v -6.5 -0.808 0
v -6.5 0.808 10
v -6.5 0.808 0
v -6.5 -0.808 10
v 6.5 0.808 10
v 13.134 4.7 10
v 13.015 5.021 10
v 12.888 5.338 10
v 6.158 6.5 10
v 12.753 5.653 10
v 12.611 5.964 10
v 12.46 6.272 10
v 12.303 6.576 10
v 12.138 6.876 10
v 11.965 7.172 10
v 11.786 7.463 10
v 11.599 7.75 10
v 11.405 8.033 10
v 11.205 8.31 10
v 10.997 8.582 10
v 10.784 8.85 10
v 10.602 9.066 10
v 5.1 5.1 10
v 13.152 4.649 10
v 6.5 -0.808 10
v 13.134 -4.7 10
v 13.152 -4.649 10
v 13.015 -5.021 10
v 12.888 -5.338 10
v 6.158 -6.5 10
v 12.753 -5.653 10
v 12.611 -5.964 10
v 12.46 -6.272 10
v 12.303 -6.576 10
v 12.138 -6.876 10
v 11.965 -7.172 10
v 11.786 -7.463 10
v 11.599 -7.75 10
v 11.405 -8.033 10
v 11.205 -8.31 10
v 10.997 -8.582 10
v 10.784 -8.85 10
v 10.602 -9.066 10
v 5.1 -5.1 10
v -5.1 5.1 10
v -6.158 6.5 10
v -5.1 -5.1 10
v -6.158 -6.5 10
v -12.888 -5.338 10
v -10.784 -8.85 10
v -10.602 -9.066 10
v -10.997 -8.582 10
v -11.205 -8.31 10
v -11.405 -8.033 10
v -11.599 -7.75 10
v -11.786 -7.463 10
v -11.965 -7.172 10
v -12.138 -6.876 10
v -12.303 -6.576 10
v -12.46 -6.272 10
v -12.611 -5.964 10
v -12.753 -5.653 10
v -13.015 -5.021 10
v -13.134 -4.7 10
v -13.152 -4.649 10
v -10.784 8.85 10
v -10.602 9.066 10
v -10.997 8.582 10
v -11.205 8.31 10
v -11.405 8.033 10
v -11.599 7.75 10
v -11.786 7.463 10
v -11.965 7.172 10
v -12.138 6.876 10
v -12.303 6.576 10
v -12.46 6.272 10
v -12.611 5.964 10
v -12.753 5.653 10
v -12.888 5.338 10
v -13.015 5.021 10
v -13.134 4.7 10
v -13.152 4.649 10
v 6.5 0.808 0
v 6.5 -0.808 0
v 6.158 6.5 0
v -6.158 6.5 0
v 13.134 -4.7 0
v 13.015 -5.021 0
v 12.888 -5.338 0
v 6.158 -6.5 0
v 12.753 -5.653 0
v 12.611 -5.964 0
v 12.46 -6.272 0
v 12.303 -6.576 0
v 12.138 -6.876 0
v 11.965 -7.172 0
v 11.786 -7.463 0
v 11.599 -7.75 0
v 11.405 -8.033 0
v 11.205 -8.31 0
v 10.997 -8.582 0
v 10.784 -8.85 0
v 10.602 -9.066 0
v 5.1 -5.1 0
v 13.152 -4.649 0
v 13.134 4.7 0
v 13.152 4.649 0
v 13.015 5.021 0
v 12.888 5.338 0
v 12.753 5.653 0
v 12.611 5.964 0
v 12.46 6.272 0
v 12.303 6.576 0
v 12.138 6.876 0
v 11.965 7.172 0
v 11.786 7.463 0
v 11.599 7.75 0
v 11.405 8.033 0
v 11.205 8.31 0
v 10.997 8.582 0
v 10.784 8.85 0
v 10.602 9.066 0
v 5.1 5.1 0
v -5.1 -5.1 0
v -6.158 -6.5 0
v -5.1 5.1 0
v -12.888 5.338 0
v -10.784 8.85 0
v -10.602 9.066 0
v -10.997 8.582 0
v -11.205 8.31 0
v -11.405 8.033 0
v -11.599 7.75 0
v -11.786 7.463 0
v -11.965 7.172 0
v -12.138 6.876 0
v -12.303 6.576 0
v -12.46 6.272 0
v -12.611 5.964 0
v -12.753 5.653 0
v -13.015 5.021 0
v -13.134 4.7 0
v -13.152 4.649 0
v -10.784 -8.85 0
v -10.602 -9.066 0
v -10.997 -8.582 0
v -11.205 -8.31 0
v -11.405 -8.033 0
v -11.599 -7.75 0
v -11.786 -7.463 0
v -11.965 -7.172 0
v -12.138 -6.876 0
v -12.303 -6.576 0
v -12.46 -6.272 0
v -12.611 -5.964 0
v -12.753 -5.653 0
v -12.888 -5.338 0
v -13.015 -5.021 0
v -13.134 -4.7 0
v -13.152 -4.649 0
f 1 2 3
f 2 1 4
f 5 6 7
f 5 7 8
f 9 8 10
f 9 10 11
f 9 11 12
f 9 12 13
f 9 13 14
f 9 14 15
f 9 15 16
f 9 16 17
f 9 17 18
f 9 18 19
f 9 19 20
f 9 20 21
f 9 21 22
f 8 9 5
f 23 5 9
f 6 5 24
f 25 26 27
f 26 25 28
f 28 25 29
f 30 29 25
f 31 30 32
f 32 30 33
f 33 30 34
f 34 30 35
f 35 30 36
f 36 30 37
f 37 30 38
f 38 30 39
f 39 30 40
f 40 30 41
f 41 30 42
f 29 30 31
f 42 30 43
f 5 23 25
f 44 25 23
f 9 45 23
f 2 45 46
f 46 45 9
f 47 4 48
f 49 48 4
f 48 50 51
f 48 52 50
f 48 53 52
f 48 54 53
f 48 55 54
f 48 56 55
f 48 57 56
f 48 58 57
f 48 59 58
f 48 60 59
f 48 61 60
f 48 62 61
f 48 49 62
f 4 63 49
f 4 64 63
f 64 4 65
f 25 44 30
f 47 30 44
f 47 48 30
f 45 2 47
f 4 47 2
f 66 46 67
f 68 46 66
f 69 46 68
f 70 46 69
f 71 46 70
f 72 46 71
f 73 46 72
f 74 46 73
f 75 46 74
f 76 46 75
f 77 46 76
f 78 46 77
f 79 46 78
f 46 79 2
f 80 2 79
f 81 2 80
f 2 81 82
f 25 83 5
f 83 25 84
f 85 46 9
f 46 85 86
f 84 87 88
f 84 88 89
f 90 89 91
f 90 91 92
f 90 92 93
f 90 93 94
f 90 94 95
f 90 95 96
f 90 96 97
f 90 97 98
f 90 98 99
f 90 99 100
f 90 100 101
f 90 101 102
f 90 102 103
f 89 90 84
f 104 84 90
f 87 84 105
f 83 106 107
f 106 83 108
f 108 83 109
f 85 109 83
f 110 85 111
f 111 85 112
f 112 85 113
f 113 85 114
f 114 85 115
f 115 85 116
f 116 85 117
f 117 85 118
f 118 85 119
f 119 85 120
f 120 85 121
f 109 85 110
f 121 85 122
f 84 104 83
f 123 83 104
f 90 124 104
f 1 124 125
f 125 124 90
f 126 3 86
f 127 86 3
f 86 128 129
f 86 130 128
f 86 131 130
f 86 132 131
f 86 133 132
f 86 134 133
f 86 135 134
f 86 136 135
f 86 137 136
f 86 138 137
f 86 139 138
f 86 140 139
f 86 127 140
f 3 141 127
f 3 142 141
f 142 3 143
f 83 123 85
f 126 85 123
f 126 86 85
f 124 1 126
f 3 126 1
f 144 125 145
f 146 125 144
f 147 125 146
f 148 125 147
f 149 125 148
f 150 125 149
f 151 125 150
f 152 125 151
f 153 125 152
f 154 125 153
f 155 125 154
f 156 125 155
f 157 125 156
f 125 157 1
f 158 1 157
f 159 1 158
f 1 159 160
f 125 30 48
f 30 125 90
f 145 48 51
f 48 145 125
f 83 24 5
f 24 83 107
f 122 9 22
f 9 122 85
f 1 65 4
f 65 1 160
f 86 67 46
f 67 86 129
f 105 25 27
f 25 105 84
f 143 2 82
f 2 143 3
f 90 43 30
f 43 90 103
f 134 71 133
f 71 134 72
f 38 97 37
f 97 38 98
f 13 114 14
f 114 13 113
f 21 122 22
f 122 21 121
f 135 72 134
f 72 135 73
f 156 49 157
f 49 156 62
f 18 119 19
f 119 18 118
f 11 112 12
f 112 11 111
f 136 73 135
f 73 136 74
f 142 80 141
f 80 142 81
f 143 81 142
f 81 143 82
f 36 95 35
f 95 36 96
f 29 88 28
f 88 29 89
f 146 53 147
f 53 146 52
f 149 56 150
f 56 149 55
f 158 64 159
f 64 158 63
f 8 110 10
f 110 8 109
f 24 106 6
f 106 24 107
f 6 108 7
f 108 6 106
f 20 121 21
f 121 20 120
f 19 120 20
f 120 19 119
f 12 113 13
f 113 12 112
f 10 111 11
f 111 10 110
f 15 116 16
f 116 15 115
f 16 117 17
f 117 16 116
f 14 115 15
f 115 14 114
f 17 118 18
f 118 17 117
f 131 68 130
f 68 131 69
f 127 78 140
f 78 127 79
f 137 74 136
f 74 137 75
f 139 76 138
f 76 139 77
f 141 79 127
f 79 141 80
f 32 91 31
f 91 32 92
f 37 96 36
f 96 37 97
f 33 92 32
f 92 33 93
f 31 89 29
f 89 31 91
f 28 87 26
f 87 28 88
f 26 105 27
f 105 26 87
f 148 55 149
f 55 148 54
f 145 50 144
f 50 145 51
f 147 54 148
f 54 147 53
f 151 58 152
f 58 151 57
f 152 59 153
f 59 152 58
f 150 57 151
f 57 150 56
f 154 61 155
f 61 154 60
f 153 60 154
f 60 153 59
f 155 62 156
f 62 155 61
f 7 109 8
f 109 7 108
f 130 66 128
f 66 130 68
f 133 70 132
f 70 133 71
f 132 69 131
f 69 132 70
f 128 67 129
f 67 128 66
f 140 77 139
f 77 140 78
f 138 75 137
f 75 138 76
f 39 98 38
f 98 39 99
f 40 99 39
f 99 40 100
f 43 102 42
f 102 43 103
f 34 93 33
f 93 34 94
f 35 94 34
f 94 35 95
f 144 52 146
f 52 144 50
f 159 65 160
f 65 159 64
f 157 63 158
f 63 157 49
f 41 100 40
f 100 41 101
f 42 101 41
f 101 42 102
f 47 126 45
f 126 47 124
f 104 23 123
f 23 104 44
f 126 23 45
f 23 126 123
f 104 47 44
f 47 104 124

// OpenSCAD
difference(){
	translate(v = [0, 0, 5.0000000000]) {
		intersection() {
			union() {
				union() {
					difference() {
						cube(center = true, size = [13, 13, 10]);
					}
					rotate(a = 30) {
						cube(center = true, size = [27.9000000000, 5.1000000000, 10]);
					}
				}
				rotate(a = -30) {
					cube(center = true, size = [27.9000000000, 5.1000000000, 10]);
				}
			}
			cylinder($fn = 256, center = true, d = 27.9000000000, h = 10);
		}
	}
	/* Holes Below*/
	translate(v = [0, 0, 5.0000000000]){
		intersection(){
			union(){
				union(){
					difference(){
						cube(center = true, size = [10.2000000000, 10.2000000000, 20]);
					}
				}
			}
		}
	} /* End Holes */ 
}
